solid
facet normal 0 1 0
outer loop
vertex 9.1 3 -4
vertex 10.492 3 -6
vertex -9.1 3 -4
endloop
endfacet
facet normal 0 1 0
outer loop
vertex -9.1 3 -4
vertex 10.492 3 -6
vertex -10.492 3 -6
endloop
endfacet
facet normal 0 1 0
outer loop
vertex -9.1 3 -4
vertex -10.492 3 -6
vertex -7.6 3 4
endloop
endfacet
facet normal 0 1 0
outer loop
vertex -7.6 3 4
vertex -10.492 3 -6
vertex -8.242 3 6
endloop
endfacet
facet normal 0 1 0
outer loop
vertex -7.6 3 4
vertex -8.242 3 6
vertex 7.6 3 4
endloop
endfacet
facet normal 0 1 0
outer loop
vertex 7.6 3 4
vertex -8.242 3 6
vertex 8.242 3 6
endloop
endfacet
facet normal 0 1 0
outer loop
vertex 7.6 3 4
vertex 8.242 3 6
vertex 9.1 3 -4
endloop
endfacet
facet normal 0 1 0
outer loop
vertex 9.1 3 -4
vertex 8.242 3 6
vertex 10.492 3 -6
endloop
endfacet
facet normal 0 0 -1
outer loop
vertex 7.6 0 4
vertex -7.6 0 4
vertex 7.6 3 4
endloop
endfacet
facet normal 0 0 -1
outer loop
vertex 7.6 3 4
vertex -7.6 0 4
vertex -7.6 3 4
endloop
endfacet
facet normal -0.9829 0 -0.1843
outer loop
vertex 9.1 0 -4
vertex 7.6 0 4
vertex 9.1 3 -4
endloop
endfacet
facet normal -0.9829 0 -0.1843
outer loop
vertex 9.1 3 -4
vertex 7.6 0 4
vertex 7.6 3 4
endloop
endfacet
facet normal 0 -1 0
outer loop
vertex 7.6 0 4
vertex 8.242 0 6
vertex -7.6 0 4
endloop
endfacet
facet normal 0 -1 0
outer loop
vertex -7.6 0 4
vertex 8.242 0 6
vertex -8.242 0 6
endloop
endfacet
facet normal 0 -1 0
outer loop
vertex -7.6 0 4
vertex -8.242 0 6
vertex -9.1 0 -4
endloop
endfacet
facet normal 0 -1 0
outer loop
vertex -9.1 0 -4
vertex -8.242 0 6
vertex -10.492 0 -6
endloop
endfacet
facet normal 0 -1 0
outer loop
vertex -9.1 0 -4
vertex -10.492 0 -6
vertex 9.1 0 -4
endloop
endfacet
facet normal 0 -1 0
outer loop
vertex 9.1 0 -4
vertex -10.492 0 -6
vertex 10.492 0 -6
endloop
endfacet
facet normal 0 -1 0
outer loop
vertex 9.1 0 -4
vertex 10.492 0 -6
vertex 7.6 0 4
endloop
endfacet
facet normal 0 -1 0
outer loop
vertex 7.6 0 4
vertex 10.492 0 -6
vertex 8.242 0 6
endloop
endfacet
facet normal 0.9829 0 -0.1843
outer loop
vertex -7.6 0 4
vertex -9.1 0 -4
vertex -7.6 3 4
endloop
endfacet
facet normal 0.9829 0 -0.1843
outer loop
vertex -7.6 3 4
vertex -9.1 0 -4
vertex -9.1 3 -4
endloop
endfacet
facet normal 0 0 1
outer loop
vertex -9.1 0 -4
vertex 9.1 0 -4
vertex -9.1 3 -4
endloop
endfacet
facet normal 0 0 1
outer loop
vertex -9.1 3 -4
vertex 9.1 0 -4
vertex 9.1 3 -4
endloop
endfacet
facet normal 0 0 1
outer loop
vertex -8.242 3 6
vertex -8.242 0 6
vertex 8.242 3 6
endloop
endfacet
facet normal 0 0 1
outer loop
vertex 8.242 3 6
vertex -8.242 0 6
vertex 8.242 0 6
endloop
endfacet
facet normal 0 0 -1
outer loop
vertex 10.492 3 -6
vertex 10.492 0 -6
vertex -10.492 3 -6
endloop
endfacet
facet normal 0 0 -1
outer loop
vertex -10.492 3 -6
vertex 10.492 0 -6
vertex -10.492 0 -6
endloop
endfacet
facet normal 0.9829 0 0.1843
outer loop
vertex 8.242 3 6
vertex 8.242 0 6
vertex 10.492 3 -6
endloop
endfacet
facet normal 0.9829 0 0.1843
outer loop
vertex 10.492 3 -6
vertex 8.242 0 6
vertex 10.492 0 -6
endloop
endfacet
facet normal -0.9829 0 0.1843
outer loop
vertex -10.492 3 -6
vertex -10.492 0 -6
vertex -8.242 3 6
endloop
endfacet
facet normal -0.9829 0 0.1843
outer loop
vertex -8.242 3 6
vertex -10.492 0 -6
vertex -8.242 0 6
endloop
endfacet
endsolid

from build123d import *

# Parameters (mm, degrees)
BOSS_EXTRUDE1_DEPTH = 10
BOSS_EXTRUDE2_DEPTH = 1
SKETCH3_W           = 10
SKETCH3_H           = 3
BOSS_EXTRUDE3_DEPTH = 3
FILLET1_R           = 1


with BuildPart() as part:
    # Sketch1 → Boss-Extrude1 (new body)
    with BuildSketch(Plane(origin=(0, 0, 0), x_dir=(1, 0, 0), z_dir=(0, 1, 0))):
        Polygon((-10.492426287, 6), (10.492426287, 6), (8.242426287, -6), (-8.242426287, -6), align=None)
        Polygon((-9.1, 4), (9.1, 4), (7.6, -4), (-7.6, -4), align=None, mode=Mode.SUBTRACT)
    extrude(amount=BOSS_EXTRUDE1_DEPTH)

    # Sketch2 → Boss-Extrude2 (add)
    with BuildSketch(Plane(origin=(0, 10, 0), x_dir=(1, 0, 0), z_dir=(0, 1, 0))):
        Polygon((-10.492426287, 6), (-8.242426287, -6), (8.242426287, -6), (10.492426287, 6), align=None)
    extrude(amount=BOSS_EXTRUDE2_DEPTH)

    # Sketch3 → Boss-Extrude3 (add)
    with BuildSketch(Plane(origin=(0, 11, 0), x_dir=(1, 0, 0), z_dir=(0, 1, 0))):
        with Locations((0, 7.5)):
            Rectangle(SKETCH3_W, SKETCH3_H)
        with Locations((0, -7.5)):
            Rectangle(SKETCH3_W, SKETCH3_H)
    extrude(amount=-BOSS_EXTRUDE3_DEPTH)

    # Fillet1
    fillet1_edges = [part.edges().sort_by_distance(p)[0] for p in [
        (-5, 9.5, 9),
        (-5, 8, 7.5),
        (5, 8, 7.5),
        (5, 9.5, 9),
        (5, 9.5, -9),
        (5, 8, -7.5),
        (-5, 8, -7.5),
        (-5, 9.5, -9),
        (0, 8, -9),
        (0, 8, 9),
        (-5, 9.5, 6),
        (5, 9.5, 6),
        (0, 8, 6),
        (5, 9.5, -6),
        (-5, 9.5, -6),
        (0, 8, -6),
    ]]
    fillet(fillet1_edges, radius=FILLET1_R)

    # Split1
    split(bisect_by=Plane(origin=(0, 3, 0), x_dir=(0, 0, -1), z_dir=(0, -1, 0)), keep=Keep.TOP)


solid = part.part
